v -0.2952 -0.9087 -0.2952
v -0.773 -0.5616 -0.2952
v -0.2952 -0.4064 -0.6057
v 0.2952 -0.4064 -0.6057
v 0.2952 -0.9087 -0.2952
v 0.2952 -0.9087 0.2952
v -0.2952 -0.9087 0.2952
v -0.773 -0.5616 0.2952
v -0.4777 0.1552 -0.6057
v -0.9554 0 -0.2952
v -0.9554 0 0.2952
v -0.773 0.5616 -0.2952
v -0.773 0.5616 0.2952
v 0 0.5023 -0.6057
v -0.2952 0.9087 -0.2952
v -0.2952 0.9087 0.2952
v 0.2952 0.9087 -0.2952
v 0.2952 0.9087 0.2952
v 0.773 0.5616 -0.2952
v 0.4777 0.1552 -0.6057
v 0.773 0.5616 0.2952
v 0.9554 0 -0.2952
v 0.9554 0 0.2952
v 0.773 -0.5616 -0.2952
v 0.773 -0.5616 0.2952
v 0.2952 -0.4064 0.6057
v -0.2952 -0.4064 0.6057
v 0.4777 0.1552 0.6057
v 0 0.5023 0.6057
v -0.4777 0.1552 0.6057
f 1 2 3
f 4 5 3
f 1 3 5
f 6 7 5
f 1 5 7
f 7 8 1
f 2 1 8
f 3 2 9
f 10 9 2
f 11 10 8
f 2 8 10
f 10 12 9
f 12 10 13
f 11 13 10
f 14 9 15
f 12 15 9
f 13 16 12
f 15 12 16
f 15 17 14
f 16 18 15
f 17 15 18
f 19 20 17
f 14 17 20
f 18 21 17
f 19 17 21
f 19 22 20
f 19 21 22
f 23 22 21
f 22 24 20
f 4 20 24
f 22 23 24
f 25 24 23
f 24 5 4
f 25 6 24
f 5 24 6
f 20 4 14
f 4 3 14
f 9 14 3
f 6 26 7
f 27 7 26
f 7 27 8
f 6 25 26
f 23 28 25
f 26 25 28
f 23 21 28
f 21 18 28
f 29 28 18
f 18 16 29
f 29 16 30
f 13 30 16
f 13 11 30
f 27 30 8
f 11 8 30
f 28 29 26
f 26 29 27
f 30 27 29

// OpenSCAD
polyhedron( points = [[-0.295241808441906, -0.908660854175527, -0.29524180853967], [-0.772953089850545, -0.561583292071783, -0.29524180853967], [-0.955422562845015, 9.88335082055427e-11, -0.29524180853967], [-0.77295309065456, 0.561583292253062, -0.29524180853967], [-0.295241809742829, 0.90866085431391, -0.29524180853967], [0.295241807401231, 0.908660854313916, -0.29524180853967], [0.772953088841034, 0.561583292253062, -0.29524180853967], [0.955422561885931, 9.88335082055427e-11, -0.29524180853967], [0.772953089745908, -0.56158329207178, -0.29524180853967], [0.295241808865339, -0.908660854175527, -0.29524180853967], [-0.295241808415395, -0.406365487116866, -0.605677416908426], [-0.477711281014472, 0.155217804296865, -0.605677417233474], [2.72124750247572e-10, 0.502295366158625, -0.605677417233474], [0.477711281475239, 0.155217804181963, -0.605677417233475], [0.295241808694451, -0.406365487239681, -0.605677416832522], [-0.295241808415395, -0.908660854093935, 0.295241808767574], [0.295241808836768, -0.908660854093935, 0.295241808659472], [0.772953090076869, -0.56158329214459, 0.295241808511071], [0.955422562690547, -1.70769433885425e-10, 0.295241808379057], [0.772953090052493, 0.561583291819435, 0.295241808313853], [0.29524180879732, 0.908660853811674, 0.295241808340366], [-0.29524180845484, 0.908660853864699, 0.295241808448468], [-0.772953089726112, 0.561583291958246, 0.295241808596869], [-0.955422562390218, 8.1329829052664e-13, 0.295241808728883], [-0.772953089802587, -0.561583292005775, 0.295241808794087], [-0.295241807840543, -0.406365487384726, 0.605677417005234], [0.295241808833632, -0.406365487605992, 0.605677417222177], [0.477711281406164, 0.15521780429941, 0.605677417090163], [2.03342830214597e-10, 0.502295366231373, 0.605677417116676], [-0.477711280483976, 0.155217804396173, 0.605677416864126]], faces = [[0, 1, 10], [0, 10, 14, 9], [0, 9, 16, 15], [0, 15, 24, 1], [1, 2, 11, 10], [1, 24, 23, 2], [2, 3, 11], [2, 23, 22, 3], [3, 4, 12, 11], [3, 22, 21, 4], [4, 5, 12], [4, 21, 20, 5], [5, 6, 13, 12], [5, 20, 19, 6], [6, 7, 13], [6, 19, 18, 7], [7, 8, 14, 13], [7, 18, 17, 8], [8, 9, 14], [8, 17, 16, 9], [10, 11, 12, 13, 14], [15, 16, 26, 25], [15, 25, 24], [16, 17, 26], [17, 18, 27, 26], [18, 19, 27], [19, 20, 28, 27], [20, 21, 28], [21, 22, 29, 28], [22, 23, 29], [23, 24, 25, 29], [25, 26, 27, 28, 29]]);
